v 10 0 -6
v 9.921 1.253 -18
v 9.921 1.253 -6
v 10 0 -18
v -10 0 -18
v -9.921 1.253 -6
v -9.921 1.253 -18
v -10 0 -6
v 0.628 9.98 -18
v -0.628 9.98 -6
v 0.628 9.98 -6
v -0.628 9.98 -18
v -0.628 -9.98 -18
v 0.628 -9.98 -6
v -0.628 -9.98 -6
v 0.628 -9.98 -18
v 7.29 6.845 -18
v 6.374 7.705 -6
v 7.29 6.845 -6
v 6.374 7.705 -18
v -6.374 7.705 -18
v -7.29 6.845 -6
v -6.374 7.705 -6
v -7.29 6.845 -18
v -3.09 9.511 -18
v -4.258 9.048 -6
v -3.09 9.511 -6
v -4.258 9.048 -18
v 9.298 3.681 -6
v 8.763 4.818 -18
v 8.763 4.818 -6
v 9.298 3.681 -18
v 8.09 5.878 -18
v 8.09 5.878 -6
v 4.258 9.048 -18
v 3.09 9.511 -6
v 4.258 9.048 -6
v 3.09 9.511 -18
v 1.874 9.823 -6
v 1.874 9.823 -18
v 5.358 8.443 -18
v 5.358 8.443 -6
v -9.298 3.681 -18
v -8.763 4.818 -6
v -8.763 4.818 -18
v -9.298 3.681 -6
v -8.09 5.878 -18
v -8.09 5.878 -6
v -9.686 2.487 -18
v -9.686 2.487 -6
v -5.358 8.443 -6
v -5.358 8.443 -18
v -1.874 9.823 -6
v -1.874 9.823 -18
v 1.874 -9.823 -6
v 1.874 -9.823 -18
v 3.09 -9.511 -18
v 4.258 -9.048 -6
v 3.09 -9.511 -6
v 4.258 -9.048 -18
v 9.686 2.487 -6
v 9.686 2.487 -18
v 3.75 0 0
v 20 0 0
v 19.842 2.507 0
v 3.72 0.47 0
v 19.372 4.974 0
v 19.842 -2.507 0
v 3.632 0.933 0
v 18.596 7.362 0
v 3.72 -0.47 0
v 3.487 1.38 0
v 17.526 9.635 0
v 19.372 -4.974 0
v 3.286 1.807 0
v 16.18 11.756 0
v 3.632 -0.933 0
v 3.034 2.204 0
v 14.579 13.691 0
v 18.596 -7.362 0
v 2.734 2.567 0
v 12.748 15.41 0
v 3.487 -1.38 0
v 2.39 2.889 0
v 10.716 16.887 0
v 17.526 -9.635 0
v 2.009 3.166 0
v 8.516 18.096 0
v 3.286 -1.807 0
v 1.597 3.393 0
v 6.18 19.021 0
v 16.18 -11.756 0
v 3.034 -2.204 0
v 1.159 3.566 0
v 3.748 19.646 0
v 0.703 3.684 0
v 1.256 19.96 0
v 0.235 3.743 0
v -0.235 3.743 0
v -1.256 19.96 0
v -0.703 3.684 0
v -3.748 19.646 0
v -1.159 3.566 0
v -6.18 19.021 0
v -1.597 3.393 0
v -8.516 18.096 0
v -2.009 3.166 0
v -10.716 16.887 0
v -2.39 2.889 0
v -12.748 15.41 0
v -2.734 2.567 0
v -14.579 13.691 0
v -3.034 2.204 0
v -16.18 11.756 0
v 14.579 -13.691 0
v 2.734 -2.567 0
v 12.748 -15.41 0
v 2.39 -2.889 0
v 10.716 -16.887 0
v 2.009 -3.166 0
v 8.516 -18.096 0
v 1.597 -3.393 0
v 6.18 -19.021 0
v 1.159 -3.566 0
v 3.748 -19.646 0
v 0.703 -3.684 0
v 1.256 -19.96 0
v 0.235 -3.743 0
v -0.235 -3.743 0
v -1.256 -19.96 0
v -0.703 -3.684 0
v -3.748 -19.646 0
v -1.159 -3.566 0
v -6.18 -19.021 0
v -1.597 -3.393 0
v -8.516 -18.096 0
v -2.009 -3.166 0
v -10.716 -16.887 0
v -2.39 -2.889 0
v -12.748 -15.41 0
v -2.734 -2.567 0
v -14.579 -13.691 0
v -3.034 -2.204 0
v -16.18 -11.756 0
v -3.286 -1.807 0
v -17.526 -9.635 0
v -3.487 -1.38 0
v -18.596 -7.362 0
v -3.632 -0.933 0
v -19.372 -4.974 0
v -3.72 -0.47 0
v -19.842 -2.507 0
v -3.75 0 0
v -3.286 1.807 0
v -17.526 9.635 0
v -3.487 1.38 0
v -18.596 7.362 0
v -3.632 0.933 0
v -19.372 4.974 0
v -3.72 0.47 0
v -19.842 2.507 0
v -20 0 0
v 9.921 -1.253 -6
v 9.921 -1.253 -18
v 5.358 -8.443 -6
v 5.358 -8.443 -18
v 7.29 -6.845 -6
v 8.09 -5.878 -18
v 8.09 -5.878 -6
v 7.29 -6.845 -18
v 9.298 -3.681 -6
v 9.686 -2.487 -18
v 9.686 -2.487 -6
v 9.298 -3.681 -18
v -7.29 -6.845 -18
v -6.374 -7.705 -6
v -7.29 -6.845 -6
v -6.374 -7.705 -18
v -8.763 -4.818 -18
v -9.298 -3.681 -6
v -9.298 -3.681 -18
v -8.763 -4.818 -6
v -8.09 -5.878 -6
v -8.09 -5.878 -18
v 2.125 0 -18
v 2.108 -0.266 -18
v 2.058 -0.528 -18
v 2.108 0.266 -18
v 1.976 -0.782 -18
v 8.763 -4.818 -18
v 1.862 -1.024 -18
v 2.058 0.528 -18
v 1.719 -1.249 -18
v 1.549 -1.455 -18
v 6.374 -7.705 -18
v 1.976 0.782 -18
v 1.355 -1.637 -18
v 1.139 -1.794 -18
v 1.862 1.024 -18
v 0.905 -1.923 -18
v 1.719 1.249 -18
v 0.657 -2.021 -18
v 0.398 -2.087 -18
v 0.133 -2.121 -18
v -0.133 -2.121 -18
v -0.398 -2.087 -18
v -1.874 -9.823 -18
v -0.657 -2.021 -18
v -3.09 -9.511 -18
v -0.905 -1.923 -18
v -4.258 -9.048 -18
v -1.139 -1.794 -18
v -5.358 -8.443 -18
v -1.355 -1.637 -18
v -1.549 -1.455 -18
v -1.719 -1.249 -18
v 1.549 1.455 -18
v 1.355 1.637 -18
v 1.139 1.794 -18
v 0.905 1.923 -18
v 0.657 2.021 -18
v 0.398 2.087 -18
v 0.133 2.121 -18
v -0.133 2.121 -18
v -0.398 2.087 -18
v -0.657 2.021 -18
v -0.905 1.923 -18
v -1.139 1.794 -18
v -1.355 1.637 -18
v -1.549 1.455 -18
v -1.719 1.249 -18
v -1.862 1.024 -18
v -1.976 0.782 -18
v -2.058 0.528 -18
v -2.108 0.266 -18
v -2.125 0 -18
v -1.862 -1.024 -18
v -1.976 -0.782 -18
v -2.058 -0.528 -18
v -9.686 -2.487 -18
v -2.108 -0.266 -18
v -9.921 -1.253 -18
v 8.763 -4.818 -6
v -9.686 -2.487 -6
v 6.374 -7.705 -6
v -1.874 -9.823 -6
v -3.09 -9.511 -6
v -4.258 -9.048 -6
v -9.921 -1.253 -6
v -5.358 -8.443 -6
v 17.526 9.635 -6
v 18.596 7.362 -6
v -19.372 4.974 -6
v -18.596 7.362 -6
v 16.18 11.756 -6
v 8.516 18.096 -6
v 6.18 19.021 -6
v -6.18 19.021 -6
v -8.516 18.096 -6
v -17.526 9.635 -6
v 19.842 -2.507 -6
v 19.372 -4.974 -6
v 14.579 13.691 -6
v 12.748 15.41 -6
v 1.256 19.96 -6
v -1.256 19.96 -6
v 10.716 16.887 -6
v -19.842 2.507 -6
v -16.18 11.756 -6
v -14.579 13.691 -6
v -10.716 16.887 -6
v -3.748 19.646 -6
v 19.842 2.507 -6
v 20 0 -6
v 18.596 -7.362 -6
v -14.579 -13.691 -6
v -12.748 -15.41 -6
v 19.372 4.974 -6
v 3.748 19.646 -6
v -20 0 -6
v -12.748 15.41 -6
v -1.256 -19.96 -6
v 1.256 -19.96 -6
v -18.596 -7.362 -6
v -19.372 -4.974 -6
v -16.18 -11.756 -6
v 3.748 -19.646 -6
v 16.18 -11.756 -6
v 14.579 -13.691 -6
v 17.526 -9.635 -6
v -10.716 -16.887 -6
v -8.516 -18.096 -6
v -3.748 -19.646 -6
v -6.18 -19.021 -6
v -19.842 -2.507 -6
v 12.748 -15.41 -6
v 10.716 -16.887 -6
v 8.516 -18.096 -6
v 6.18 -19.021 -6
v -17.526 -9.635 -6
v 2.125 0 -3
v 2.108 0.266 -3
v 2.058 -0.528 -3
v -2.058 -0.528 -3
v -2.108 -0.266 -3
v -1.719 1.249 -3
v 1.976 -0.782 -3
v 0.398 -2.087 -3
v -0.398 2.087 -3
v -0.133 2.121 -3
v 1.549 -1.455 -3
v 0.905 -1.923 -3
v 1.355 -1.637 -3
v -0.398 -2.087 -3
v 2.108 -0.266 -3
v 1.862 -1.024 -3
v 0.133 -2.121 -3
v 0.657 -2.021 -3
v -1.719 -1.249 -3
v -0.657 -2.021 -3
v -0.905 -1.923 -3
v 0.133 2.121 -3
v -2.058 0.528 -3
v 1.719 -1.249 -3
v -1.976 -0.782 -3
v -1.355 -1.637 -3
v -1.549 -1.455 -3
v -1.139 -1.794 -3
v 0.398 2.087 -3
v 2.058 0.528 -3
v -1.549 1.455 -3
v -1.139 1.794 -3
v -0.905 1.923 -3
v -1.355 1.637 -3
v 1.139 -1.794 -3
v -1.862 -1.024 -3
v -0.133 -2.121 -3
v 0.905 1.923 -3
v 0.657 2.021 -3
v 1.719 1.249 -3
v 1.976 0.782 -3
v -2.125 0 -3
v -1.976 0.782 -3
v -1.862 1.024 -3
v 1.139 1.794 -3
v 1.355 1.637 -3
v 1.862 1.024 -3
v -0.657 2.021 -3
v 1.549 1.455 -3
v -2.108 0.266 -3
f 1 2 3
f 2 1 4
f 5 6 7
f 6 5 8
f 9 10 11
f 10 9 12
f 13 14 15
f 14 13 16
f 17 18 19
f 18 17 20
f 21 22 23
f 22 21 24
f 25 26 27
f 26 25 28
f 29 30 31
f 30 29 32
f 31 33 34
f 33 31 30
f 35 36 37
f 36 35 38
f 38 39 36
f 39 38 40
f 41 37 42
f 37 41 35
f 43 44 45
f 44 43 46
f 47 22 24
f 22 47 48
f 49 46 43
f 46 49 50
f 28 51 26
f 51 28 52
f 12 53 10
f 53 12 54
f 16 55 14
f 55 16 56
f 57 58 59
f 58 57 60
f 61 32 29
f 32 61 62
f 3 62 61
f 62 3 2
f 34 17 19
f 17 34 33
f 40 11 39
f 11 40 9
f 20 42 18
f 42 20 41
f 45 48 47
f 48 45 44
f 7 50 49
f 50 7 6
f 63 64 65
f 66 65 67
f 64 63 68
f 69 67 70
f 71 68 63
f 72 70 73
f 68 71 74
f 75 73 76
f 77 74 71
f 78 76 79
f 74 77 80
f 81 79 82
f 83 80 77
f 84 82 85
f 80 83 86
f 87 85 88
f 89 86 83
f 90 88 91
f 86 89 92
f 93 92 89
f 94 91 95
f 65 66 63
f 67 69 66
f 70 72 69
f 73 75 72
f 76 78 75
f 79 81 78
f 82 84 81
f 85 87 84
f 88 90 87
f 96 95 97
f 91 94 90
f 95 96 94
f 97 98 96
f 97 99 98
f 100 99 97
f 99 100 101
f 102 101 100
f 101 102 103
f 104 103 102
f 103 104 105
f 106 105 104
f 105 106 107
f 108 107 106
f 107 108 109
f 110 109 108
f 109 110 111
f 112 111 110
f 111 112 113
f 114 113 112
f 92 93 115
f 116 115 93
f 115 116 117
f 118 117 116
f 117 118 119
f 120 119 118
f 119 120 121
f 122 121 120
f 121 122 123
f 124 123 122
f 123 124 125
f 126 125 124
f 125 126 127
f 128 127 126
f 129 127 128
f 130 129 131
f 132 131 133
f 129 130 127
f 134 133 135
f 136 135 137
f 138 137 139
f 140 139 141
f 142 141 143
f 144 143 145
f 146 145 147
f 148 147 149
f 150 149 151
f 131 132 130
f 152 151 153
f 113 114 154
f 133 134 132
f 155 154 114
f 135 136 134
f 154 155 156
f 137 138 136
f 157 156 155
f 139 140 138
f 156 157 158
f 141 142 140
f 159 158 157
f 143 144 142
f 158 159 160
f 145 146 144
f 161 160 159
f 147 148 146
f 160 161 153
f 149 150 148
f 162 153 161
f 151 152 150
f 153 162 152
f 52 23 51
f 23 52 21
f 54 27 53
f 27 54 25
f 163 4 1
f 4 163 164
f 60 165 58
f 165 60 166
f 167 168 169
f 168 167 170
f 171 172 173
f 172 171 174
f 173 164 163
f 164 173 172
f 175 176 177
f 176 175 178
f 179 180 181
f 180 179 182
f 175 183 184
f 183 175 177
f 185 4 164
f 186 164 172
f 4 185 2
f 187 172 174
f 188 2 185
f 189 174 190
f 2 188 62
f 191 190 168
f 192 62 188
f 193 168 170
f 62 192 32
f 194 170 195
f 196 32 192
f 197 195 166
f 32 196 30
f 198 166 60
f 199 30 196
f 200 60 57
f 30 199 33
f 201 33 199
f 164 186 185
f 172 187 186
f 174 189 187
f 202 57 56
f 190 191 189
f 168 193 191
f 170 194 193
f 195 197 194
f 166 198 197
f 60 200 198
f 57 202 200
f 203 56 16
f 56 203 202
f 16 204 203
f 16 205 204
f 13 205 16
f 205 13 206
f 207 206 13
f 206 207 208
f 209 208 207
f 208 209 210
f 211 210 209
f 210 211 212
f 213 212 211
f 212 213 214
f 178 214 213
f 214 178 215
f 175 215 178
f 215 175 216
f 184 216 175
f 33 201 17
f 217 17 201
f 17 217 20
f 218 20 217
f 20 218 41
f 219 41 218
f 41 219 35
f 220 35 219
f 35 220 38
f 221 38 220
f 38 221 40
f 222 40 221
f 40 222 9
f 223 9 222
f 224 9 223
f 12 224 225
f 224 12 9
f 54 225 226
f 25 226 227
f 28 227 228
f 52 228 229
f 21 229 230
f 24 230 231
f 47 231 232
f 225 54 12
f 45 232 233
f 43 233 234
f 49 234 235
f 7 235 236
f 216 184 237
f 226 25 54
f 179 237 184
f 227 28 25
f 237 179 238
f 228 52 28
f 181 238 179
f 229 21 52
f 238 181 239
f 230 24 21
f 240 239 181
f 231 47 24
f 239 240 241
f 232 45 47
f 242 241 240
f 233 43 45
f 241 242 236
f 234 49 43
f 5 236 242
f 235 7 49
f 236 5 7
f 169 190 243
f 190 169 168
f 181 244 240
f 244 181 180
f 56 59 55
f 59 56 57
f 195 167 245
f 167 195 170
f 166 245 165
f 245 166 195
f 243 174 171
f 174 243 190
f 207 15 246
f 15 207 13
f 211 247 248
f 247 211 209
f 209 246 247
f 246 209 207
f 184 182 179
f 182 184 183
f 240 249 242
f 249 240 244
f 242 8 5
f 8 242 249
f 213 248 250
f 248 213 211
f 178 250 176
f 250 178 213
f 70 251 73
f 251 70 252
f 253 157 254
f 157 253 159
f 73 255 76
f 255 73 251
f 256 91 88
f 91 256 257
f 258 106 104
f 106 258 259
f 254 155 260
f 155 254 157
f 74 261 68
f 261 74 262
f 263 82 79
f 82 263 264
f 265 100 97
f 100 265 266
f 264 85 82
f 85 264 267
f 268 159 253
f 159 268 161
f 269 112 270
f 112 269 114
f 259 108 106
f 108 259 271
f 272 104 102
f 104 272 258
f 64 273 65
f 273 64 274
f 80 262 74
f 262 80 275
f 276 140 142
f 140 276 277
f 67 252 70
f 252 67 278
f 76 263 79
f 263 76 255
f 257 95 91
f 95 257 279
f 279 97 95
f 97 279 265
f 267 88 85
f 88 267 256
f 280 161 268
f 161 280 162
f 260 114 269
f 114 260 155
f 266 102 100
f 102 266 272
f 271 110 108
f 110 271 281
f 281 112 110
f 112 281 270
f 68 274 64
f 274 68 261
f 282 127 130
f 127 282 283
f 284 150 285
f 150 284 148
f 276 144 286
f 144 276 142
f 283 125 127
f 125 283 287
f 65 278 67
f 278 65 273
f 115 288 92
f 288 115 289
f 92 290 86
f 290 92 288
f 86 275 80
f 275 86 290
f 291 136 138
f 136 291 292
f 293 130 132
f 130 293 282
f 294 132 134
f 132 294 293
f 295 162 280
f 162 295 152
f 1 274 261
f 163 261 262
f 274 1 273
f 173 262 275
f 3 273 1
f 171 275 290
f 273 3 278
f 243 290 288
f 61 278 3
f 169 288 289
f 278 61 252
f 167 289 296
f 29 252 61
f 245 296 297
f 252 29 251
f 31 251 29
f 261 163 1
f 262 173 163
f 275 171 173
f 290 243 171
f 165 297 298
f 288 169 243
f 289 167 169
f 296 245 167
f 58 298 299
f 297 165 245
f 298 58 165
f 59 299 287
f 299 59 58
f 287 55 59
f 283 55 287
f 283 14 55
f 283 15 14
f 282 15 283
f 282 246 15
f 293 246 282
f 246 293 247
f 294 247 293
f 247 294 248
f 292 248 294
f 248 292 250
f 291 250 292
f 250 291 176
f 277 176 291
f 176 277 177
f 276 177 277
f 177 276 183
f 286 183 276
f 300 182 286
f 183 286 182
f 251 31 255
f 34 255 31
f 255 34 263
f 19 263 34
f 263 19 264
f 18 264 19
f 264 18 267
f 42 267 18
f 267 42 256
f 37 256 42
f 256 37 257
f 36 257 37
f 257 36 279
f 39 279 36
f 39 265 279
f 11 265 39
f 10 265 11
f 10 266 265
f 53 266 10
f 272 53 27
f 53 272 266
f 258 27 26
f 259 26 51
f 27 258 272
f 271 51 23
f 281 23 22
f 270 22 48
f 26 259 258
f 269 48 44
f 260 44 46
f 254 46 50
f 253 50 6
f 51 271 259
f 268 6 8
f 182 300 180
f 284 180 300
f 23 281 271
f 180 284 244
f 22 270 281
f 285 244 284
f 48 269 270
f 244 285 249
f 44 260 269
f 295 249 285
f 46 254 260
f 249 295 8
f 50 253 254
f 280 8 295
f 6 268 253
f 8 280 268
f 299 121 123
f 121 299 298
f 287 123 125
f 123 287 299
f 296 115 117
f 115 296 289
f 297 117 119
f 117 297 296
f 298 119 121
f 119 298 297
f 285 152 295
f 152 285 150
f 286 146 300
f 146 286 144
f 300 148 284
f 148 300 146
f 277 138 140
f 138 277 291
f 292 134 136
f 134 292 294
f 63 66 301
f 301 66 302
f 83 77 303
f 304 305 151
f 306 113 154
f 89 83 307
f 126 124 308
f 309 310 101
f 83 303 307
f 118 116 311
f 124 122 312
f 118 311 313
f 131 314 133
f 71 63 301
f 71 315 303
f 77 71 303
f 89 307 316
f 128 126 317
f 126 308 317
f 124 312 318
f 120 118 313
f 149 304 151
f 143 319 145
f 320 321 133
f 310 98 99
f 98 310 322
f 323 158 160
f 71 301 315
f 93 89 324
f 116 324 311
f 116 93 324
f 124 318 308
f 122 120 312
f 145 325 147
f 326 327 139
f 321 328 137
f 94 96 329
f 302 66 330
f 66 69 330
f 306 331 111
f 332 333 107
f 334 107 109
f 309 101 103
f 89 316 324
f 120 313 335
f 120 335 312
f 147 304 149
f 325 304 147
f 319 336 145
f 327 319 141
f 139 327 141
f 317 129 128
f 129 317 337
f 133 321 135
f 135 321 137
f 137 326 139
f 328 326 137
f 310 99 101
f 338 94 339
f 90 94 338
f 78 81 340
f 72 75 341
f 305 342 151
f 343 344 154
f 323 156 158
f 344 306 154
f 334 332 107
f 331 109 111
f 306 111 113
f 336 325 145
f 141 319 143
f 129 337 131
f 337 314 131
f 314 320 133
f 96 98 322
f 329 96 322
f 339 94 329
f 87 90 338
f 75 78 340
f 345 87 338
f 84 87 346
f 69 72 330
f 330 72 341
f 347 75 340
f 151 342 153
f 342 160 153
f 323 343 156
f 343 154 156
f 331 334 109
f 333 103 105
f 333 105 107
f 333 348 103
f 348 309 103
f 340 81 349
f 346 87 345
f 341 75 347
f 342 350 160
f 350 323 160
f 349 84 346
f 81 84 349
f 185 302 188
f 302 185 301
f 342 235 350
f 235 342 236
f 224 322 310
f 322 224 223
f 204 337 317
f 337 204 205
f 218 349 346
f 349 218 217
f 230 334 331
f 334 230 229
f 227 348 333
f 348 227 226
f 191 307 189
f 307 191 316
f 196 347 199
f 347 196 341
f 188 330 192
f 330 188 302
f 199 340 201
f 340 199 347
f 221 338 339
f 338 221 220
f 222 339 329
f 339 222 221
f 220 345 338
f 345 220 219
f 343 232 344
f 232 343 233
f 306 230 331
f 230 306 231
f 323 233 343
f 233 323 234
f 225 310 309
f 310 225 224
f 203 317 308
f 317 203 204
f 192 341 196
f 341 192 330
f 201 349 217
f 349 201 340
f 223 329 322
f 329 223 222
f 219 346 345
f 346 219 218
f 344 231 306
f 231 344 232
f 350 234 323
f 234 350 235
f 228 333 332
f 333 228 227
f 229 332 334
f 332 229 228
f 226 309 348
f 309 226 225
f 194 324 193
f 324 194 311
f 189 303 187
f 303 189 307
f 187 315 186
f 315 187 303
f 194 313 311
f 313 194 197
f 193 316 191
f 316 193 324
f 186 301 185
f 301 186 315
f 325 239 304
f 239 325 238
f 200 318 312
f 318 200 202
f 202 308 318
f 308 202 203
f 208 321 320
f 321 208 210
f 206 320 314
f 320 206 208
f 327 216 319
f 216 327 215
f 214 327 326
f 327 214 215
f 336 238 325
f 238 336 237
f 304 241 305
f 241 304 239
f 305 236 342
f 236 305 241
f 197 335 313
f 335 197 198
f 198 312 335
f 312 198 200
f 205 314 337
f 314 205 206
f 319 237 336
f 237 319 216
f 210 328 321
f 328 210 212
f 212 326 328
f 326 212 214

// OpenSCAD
$fn = 50;


difference() {
	union() {
		translate(v = [0, 0, -18.0000000000]) {
			cylinder(h = 18, r = 10.0000000000);
		}
		translate(v = [0, 0, -6.0000000000]) {
			cylinder(h = 6, r = 20.0000000000);
		}
	}
	union() {
		translate(v = [0, 0, 0]) {
			rotate(a = [0, 0, 0]) {
				difference() {
					union() {
						#translate(v = [0, 0, -18.0000000000]) {
							cylinder(h = 18, r = 2.0000000000);
						}
						#translate(v = [0, 0, -3]) {
							cylinder(h = 3, r1 = 2.1250000000, r2 = 3.7500000000);
						}
						#translate(v = [0, 0, -18.0000000000]) {
							cylinder(h = 18, r = 2.1250000000);
						}
						#translate(v = [0, 0, -18.0000000000]) {
							cylinder(h = 18, r = 2.0000000000);
						}
					}
					union();
				}
			}
		}
	}
}
